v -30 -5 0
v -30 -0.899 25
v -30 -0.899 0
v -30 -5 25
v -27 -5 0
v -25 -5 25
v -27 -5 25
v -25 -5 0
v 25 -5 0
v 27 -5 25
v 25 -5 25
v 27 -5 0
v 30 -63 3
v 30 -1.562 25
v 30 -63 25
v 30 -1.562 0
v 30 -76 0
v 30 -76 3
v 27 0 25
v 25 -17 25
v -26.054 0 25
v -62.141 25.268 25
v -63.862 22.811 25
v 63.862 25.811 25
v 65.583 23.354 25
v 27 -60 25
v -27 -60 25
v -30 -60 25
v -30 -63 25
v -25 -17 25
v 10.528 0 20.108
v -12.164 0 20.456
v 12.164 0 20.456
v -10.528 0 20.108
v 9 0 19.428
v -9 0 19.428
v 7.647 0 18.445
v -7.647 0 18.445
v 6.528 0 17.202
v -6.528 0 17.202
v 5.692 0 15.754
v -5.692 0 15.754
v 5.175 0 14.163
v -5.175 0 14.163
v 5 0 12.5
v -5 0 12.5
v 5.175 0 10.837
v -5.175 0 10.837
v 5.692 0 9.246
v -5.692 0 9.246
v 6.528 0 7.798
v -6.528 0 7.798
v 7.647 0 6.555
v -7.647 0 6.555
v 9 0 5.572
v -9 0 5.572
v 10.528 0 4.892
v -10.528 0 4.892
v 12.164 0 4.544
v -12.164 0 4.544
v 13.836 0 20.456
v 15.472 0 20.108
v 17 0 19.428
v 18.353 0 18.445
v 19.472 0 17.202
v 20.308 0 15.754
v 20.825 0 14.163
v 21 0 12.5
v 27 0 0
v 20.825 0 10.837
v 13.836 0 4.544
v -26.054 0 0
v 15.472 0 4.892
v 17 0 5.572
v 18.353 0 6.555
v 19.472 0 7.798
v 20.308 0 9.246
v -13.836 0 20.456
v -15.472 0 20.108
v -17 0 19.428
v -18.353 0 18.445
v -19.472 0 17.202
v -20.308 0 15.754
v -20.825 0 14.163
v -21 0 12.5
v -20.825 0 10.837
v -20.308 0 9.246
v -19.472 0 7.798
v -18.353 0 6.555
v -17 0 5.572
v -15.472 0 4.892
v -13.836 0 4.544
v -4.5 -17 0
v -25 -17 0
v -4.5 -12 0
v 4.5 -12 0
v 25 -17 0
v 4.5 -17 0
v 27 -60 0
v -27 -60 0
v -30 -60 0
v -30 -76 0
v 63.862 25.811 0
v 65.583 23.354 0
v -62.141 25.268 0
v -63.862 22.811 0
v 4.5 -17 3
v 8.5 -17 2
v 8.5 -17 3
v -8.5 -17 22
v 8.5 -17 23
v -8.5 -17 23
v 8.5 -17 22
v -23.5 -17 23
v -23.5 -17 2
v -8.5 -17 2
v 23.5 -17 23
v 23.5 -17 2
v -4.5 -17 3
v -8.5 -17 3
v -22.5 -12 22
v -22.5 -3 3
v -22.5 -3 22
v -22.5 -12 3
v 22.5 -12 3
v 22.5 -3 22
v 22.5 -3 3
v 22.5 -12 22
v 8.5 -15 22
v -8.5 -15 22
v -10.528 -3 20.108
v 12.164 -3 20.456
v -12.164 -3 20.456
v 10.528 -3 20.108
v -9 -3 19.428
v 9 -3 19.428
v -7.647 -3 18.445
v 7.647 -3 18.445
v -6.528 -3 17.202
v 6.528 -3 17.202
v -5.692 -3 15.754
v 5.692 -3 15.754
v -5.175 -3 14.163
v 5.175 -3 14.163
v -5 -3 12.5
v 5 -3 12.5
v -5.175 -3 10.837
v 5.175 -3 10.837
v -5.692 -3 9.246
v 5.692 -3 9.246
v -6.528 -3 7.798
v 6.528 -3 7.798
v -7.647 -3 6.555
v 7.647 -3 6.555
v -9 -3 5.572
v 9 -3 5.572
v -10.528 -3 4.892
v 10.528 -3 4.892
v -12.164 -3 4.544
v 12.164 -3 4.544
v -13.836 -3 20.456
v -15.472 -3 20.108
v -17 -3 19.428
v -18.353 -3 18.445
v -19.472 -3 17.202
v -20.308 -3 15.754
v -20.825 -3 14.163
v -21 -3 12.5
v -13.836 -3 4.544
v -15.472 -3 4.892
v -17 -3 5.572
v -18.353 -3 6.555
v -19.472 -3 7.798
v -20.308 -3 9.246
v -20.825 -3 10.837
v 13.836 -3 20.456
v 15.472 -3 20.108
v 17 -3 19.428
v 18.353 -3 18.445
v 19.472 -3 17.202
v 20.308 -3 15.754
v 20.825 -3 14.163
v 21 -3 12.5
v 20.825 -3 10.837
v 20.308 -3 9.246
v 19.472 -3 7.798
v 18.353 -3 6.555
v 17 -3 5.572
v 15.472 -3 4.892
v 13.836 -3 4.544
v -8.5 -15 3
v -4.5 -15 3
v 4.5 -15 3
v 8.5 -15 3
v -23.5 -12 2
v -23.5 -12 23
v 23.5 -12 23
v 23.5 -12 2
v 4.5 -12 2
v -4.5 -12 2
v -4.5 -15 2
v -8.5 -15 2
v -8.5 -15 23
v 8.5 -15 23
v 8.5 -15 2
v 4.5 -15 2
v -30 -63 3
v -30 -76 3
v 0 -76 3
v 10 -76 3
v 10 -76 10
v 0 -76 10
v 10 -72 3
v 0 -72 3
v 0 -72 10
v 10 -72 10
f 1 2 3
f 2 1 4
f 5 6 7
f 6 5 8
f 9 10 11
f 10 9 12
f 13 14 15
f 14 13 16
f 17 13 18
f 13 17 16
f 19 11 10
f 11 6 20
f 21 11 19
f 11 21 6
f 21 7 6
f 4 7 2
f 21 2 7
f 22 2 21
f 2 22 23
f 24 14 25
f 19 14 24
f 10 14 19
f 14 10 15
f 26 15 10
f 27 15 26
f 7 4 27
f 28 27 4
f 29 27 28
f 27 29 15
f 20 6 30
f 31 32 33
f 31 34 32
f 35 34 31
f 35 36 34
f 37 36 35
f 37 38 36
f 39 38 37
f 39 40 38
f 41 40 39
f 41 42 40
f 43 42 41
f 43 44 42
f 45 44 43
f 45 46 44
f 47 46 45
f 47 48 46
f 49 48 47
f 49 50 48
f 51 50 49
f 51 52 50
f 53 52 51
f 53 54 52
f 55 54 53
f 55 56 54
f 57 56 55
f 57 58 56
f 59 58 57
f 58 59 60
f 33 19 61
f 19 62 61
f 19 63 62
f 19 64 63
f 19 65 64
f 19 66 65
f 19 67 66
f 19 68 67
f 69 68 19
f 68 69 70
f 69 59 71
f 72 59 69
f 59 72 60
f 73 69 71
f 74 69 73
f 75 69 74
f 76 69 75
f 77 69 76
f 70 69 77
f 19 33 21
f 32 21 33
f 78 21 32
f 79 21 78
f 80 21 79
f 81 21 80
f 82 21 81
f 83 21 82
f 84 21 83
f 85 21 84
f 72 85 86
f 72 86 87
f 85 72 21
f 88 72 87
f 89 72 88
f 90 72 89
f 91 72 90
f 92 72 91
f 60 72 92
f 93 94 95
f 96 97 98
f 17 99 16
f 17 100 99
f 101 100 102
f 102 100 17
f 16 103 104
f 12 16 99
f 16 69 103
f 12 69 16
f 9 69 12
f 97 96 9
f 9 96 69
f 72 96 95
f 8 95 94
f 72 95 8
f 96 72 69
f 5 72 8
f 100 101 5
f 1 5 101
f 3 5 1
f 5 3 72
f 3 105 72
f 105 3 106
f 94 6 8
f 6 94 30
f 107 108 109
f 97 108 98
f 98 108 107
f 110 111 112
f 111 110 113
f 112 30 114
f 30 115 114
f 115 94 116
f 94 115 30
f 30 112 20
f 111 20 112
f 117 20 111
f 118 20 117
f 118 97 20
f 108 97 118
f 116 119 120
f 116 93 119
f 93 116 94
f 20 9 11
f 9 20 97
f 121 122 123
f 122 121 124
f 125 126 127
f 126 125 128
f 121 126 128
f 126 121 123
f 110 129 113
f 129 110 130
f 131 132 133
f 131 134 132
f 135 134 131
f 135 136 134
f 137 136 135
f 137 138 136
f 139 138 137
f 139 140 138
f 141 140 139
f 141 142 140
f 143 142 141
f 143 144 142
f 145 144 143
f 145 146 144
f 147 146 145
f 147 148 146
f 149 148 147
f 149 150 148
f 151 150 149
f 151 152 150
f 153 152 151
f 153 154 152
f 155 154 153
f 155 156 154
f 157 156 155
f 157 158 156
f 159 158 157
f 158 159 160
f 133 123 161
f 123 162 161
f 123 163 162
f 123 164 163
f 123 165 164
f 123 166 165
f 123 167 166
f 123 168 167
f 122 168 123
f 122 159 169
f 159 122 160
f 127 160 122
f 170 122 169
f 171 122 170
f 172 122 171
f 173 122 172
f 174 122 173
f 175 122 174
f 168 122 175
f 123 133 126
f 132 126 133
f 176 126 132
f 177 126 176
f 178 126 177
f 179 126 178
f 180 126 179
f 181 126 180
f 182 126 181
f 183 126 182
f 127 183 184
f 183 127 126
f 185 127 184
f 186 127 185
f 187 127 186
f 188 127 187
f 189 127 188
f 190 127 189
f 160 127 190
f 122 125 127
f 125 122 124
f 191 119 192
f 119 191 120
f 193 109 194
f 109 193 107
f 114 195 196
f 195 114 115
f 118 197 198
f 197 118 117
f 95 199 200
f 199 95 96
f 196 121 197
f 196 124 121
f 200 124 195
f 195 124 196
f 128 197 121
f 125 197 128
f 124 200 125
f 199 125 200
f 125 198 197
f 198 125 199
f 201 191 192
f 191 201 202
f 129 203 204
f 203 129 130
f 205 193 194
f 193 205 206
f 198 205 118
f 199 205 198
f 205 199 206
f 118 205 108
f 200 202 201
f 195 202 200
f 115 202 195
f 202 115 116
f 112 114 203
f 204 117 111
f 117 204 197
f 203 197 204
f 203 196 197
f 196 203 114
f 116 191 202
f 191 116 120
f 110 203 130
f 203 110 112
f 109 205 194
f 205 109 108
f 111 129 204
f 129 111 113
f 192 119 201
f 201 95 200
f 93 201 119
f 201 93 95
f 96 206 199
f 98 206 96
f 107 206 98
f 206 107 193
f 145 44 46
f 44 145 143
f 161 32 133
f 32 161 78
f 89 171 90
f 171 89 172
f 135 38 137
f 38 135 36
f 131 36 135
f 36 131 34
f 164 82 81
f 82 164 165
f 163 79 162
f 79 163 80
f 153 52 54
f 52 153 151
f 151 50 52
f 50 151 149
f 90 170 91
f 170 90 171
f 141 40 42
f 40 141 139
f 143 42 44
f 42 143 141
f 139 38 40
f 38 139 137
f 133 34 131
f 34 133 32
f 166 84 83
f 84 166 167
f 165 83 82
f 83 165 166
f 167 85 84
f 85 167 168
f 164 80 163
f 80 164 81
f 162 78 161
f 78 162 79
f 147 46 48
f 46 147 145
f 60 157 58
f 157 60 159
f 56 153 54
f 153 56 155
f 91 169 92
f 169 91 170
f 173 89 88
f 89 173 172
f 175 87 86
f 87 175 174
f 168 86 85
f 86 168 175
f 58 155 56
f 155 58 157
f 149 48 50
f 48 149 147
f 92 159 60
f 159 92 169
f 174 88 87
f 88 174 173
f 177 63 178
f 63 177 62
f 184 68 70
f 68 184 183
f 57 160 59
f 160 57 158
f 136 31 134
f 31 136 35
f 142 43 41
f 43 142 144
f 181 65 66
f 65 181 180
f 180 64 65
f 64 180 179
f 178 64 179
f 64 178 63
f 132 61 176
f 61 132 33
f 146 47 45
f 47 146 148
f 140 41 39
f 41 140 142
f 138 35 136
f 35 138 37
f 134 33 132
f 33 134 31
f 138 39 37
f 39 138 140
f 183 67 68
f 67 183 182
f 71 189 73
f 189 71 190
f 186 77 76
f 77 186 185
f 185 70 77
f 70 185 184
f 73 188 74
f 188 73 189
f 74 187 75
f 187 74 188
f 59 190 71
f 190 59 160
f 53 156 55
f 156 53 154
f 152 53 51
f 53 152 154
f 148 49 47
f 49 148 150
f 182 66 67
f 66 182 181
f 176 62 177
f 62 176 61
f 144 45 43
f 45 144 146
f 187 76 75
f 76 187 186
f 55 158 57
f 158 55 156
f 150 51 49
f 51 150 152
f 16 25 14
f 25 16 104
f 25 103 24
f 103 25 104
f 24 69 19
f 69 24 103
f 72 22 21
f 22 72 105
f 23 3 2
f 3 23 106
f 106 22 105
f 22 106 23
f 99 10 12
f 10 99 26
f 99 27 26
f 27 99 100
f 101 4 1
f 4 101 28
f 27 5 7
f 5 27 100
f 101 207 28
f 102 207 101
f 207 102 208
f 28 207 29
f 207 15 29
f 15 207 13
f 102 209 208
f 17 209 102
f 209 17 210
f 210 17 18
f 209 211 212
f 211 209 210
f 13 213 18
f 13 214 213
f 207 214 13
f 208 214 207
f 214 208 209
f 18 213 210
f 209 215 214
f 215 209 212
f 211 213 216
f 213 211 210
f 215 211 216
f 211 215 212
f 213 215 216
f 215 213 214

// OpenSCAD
//Soporte Ultrasonidos
rotate([90,0,0]) translate([0,12.5,0]){
    translate([-25,-12.5,0]){
        difference(){
            union(){
                translate([-5,0,0]) cube([60,25,5]);
                cube([50,25,17]);
            }
            union(){
                translate([2.5,3,3]) cube([45,19,18]);
                translate([1.5,3,12]) cube([47,19,8]);
                translate([1.5,2,12]) cube([47,21,3]);
                translate([1.5,2,12]) cube([15,21,8]);
                translate([33.5,2,12]) cube([15,21,8]);
                translate([20.5,-1,12]) cube([9,20,8]);        
                translate([12,12.5,-1]) cylinder(r=8,h=5,$fn=30);
                translate([38,12.5,-1]) cylinder(r=8,h=5,$fn=30);
            }
        }
    }
    translate([27,-12.5,0]) rotate([0,35,0]) cube([45,25,3]);
    translate([-27,-12.5,3]) rotate([0,145,0]) cube([45,25,3]);
    translate([30,-12.5,0]) rotate([0,-90,0]) cube([60,25,3]);
    translate([-27,-12.5,0]) rotate([0,-90,0]) cube([60,25,3]);
    translate([-30,-12.5,60]) cube([60,25,3]);
    translate([-30,-12.5,60]) cube([60,3,16]);
    translate([0,-9.5,72]) cube([10,7,4]);
}
